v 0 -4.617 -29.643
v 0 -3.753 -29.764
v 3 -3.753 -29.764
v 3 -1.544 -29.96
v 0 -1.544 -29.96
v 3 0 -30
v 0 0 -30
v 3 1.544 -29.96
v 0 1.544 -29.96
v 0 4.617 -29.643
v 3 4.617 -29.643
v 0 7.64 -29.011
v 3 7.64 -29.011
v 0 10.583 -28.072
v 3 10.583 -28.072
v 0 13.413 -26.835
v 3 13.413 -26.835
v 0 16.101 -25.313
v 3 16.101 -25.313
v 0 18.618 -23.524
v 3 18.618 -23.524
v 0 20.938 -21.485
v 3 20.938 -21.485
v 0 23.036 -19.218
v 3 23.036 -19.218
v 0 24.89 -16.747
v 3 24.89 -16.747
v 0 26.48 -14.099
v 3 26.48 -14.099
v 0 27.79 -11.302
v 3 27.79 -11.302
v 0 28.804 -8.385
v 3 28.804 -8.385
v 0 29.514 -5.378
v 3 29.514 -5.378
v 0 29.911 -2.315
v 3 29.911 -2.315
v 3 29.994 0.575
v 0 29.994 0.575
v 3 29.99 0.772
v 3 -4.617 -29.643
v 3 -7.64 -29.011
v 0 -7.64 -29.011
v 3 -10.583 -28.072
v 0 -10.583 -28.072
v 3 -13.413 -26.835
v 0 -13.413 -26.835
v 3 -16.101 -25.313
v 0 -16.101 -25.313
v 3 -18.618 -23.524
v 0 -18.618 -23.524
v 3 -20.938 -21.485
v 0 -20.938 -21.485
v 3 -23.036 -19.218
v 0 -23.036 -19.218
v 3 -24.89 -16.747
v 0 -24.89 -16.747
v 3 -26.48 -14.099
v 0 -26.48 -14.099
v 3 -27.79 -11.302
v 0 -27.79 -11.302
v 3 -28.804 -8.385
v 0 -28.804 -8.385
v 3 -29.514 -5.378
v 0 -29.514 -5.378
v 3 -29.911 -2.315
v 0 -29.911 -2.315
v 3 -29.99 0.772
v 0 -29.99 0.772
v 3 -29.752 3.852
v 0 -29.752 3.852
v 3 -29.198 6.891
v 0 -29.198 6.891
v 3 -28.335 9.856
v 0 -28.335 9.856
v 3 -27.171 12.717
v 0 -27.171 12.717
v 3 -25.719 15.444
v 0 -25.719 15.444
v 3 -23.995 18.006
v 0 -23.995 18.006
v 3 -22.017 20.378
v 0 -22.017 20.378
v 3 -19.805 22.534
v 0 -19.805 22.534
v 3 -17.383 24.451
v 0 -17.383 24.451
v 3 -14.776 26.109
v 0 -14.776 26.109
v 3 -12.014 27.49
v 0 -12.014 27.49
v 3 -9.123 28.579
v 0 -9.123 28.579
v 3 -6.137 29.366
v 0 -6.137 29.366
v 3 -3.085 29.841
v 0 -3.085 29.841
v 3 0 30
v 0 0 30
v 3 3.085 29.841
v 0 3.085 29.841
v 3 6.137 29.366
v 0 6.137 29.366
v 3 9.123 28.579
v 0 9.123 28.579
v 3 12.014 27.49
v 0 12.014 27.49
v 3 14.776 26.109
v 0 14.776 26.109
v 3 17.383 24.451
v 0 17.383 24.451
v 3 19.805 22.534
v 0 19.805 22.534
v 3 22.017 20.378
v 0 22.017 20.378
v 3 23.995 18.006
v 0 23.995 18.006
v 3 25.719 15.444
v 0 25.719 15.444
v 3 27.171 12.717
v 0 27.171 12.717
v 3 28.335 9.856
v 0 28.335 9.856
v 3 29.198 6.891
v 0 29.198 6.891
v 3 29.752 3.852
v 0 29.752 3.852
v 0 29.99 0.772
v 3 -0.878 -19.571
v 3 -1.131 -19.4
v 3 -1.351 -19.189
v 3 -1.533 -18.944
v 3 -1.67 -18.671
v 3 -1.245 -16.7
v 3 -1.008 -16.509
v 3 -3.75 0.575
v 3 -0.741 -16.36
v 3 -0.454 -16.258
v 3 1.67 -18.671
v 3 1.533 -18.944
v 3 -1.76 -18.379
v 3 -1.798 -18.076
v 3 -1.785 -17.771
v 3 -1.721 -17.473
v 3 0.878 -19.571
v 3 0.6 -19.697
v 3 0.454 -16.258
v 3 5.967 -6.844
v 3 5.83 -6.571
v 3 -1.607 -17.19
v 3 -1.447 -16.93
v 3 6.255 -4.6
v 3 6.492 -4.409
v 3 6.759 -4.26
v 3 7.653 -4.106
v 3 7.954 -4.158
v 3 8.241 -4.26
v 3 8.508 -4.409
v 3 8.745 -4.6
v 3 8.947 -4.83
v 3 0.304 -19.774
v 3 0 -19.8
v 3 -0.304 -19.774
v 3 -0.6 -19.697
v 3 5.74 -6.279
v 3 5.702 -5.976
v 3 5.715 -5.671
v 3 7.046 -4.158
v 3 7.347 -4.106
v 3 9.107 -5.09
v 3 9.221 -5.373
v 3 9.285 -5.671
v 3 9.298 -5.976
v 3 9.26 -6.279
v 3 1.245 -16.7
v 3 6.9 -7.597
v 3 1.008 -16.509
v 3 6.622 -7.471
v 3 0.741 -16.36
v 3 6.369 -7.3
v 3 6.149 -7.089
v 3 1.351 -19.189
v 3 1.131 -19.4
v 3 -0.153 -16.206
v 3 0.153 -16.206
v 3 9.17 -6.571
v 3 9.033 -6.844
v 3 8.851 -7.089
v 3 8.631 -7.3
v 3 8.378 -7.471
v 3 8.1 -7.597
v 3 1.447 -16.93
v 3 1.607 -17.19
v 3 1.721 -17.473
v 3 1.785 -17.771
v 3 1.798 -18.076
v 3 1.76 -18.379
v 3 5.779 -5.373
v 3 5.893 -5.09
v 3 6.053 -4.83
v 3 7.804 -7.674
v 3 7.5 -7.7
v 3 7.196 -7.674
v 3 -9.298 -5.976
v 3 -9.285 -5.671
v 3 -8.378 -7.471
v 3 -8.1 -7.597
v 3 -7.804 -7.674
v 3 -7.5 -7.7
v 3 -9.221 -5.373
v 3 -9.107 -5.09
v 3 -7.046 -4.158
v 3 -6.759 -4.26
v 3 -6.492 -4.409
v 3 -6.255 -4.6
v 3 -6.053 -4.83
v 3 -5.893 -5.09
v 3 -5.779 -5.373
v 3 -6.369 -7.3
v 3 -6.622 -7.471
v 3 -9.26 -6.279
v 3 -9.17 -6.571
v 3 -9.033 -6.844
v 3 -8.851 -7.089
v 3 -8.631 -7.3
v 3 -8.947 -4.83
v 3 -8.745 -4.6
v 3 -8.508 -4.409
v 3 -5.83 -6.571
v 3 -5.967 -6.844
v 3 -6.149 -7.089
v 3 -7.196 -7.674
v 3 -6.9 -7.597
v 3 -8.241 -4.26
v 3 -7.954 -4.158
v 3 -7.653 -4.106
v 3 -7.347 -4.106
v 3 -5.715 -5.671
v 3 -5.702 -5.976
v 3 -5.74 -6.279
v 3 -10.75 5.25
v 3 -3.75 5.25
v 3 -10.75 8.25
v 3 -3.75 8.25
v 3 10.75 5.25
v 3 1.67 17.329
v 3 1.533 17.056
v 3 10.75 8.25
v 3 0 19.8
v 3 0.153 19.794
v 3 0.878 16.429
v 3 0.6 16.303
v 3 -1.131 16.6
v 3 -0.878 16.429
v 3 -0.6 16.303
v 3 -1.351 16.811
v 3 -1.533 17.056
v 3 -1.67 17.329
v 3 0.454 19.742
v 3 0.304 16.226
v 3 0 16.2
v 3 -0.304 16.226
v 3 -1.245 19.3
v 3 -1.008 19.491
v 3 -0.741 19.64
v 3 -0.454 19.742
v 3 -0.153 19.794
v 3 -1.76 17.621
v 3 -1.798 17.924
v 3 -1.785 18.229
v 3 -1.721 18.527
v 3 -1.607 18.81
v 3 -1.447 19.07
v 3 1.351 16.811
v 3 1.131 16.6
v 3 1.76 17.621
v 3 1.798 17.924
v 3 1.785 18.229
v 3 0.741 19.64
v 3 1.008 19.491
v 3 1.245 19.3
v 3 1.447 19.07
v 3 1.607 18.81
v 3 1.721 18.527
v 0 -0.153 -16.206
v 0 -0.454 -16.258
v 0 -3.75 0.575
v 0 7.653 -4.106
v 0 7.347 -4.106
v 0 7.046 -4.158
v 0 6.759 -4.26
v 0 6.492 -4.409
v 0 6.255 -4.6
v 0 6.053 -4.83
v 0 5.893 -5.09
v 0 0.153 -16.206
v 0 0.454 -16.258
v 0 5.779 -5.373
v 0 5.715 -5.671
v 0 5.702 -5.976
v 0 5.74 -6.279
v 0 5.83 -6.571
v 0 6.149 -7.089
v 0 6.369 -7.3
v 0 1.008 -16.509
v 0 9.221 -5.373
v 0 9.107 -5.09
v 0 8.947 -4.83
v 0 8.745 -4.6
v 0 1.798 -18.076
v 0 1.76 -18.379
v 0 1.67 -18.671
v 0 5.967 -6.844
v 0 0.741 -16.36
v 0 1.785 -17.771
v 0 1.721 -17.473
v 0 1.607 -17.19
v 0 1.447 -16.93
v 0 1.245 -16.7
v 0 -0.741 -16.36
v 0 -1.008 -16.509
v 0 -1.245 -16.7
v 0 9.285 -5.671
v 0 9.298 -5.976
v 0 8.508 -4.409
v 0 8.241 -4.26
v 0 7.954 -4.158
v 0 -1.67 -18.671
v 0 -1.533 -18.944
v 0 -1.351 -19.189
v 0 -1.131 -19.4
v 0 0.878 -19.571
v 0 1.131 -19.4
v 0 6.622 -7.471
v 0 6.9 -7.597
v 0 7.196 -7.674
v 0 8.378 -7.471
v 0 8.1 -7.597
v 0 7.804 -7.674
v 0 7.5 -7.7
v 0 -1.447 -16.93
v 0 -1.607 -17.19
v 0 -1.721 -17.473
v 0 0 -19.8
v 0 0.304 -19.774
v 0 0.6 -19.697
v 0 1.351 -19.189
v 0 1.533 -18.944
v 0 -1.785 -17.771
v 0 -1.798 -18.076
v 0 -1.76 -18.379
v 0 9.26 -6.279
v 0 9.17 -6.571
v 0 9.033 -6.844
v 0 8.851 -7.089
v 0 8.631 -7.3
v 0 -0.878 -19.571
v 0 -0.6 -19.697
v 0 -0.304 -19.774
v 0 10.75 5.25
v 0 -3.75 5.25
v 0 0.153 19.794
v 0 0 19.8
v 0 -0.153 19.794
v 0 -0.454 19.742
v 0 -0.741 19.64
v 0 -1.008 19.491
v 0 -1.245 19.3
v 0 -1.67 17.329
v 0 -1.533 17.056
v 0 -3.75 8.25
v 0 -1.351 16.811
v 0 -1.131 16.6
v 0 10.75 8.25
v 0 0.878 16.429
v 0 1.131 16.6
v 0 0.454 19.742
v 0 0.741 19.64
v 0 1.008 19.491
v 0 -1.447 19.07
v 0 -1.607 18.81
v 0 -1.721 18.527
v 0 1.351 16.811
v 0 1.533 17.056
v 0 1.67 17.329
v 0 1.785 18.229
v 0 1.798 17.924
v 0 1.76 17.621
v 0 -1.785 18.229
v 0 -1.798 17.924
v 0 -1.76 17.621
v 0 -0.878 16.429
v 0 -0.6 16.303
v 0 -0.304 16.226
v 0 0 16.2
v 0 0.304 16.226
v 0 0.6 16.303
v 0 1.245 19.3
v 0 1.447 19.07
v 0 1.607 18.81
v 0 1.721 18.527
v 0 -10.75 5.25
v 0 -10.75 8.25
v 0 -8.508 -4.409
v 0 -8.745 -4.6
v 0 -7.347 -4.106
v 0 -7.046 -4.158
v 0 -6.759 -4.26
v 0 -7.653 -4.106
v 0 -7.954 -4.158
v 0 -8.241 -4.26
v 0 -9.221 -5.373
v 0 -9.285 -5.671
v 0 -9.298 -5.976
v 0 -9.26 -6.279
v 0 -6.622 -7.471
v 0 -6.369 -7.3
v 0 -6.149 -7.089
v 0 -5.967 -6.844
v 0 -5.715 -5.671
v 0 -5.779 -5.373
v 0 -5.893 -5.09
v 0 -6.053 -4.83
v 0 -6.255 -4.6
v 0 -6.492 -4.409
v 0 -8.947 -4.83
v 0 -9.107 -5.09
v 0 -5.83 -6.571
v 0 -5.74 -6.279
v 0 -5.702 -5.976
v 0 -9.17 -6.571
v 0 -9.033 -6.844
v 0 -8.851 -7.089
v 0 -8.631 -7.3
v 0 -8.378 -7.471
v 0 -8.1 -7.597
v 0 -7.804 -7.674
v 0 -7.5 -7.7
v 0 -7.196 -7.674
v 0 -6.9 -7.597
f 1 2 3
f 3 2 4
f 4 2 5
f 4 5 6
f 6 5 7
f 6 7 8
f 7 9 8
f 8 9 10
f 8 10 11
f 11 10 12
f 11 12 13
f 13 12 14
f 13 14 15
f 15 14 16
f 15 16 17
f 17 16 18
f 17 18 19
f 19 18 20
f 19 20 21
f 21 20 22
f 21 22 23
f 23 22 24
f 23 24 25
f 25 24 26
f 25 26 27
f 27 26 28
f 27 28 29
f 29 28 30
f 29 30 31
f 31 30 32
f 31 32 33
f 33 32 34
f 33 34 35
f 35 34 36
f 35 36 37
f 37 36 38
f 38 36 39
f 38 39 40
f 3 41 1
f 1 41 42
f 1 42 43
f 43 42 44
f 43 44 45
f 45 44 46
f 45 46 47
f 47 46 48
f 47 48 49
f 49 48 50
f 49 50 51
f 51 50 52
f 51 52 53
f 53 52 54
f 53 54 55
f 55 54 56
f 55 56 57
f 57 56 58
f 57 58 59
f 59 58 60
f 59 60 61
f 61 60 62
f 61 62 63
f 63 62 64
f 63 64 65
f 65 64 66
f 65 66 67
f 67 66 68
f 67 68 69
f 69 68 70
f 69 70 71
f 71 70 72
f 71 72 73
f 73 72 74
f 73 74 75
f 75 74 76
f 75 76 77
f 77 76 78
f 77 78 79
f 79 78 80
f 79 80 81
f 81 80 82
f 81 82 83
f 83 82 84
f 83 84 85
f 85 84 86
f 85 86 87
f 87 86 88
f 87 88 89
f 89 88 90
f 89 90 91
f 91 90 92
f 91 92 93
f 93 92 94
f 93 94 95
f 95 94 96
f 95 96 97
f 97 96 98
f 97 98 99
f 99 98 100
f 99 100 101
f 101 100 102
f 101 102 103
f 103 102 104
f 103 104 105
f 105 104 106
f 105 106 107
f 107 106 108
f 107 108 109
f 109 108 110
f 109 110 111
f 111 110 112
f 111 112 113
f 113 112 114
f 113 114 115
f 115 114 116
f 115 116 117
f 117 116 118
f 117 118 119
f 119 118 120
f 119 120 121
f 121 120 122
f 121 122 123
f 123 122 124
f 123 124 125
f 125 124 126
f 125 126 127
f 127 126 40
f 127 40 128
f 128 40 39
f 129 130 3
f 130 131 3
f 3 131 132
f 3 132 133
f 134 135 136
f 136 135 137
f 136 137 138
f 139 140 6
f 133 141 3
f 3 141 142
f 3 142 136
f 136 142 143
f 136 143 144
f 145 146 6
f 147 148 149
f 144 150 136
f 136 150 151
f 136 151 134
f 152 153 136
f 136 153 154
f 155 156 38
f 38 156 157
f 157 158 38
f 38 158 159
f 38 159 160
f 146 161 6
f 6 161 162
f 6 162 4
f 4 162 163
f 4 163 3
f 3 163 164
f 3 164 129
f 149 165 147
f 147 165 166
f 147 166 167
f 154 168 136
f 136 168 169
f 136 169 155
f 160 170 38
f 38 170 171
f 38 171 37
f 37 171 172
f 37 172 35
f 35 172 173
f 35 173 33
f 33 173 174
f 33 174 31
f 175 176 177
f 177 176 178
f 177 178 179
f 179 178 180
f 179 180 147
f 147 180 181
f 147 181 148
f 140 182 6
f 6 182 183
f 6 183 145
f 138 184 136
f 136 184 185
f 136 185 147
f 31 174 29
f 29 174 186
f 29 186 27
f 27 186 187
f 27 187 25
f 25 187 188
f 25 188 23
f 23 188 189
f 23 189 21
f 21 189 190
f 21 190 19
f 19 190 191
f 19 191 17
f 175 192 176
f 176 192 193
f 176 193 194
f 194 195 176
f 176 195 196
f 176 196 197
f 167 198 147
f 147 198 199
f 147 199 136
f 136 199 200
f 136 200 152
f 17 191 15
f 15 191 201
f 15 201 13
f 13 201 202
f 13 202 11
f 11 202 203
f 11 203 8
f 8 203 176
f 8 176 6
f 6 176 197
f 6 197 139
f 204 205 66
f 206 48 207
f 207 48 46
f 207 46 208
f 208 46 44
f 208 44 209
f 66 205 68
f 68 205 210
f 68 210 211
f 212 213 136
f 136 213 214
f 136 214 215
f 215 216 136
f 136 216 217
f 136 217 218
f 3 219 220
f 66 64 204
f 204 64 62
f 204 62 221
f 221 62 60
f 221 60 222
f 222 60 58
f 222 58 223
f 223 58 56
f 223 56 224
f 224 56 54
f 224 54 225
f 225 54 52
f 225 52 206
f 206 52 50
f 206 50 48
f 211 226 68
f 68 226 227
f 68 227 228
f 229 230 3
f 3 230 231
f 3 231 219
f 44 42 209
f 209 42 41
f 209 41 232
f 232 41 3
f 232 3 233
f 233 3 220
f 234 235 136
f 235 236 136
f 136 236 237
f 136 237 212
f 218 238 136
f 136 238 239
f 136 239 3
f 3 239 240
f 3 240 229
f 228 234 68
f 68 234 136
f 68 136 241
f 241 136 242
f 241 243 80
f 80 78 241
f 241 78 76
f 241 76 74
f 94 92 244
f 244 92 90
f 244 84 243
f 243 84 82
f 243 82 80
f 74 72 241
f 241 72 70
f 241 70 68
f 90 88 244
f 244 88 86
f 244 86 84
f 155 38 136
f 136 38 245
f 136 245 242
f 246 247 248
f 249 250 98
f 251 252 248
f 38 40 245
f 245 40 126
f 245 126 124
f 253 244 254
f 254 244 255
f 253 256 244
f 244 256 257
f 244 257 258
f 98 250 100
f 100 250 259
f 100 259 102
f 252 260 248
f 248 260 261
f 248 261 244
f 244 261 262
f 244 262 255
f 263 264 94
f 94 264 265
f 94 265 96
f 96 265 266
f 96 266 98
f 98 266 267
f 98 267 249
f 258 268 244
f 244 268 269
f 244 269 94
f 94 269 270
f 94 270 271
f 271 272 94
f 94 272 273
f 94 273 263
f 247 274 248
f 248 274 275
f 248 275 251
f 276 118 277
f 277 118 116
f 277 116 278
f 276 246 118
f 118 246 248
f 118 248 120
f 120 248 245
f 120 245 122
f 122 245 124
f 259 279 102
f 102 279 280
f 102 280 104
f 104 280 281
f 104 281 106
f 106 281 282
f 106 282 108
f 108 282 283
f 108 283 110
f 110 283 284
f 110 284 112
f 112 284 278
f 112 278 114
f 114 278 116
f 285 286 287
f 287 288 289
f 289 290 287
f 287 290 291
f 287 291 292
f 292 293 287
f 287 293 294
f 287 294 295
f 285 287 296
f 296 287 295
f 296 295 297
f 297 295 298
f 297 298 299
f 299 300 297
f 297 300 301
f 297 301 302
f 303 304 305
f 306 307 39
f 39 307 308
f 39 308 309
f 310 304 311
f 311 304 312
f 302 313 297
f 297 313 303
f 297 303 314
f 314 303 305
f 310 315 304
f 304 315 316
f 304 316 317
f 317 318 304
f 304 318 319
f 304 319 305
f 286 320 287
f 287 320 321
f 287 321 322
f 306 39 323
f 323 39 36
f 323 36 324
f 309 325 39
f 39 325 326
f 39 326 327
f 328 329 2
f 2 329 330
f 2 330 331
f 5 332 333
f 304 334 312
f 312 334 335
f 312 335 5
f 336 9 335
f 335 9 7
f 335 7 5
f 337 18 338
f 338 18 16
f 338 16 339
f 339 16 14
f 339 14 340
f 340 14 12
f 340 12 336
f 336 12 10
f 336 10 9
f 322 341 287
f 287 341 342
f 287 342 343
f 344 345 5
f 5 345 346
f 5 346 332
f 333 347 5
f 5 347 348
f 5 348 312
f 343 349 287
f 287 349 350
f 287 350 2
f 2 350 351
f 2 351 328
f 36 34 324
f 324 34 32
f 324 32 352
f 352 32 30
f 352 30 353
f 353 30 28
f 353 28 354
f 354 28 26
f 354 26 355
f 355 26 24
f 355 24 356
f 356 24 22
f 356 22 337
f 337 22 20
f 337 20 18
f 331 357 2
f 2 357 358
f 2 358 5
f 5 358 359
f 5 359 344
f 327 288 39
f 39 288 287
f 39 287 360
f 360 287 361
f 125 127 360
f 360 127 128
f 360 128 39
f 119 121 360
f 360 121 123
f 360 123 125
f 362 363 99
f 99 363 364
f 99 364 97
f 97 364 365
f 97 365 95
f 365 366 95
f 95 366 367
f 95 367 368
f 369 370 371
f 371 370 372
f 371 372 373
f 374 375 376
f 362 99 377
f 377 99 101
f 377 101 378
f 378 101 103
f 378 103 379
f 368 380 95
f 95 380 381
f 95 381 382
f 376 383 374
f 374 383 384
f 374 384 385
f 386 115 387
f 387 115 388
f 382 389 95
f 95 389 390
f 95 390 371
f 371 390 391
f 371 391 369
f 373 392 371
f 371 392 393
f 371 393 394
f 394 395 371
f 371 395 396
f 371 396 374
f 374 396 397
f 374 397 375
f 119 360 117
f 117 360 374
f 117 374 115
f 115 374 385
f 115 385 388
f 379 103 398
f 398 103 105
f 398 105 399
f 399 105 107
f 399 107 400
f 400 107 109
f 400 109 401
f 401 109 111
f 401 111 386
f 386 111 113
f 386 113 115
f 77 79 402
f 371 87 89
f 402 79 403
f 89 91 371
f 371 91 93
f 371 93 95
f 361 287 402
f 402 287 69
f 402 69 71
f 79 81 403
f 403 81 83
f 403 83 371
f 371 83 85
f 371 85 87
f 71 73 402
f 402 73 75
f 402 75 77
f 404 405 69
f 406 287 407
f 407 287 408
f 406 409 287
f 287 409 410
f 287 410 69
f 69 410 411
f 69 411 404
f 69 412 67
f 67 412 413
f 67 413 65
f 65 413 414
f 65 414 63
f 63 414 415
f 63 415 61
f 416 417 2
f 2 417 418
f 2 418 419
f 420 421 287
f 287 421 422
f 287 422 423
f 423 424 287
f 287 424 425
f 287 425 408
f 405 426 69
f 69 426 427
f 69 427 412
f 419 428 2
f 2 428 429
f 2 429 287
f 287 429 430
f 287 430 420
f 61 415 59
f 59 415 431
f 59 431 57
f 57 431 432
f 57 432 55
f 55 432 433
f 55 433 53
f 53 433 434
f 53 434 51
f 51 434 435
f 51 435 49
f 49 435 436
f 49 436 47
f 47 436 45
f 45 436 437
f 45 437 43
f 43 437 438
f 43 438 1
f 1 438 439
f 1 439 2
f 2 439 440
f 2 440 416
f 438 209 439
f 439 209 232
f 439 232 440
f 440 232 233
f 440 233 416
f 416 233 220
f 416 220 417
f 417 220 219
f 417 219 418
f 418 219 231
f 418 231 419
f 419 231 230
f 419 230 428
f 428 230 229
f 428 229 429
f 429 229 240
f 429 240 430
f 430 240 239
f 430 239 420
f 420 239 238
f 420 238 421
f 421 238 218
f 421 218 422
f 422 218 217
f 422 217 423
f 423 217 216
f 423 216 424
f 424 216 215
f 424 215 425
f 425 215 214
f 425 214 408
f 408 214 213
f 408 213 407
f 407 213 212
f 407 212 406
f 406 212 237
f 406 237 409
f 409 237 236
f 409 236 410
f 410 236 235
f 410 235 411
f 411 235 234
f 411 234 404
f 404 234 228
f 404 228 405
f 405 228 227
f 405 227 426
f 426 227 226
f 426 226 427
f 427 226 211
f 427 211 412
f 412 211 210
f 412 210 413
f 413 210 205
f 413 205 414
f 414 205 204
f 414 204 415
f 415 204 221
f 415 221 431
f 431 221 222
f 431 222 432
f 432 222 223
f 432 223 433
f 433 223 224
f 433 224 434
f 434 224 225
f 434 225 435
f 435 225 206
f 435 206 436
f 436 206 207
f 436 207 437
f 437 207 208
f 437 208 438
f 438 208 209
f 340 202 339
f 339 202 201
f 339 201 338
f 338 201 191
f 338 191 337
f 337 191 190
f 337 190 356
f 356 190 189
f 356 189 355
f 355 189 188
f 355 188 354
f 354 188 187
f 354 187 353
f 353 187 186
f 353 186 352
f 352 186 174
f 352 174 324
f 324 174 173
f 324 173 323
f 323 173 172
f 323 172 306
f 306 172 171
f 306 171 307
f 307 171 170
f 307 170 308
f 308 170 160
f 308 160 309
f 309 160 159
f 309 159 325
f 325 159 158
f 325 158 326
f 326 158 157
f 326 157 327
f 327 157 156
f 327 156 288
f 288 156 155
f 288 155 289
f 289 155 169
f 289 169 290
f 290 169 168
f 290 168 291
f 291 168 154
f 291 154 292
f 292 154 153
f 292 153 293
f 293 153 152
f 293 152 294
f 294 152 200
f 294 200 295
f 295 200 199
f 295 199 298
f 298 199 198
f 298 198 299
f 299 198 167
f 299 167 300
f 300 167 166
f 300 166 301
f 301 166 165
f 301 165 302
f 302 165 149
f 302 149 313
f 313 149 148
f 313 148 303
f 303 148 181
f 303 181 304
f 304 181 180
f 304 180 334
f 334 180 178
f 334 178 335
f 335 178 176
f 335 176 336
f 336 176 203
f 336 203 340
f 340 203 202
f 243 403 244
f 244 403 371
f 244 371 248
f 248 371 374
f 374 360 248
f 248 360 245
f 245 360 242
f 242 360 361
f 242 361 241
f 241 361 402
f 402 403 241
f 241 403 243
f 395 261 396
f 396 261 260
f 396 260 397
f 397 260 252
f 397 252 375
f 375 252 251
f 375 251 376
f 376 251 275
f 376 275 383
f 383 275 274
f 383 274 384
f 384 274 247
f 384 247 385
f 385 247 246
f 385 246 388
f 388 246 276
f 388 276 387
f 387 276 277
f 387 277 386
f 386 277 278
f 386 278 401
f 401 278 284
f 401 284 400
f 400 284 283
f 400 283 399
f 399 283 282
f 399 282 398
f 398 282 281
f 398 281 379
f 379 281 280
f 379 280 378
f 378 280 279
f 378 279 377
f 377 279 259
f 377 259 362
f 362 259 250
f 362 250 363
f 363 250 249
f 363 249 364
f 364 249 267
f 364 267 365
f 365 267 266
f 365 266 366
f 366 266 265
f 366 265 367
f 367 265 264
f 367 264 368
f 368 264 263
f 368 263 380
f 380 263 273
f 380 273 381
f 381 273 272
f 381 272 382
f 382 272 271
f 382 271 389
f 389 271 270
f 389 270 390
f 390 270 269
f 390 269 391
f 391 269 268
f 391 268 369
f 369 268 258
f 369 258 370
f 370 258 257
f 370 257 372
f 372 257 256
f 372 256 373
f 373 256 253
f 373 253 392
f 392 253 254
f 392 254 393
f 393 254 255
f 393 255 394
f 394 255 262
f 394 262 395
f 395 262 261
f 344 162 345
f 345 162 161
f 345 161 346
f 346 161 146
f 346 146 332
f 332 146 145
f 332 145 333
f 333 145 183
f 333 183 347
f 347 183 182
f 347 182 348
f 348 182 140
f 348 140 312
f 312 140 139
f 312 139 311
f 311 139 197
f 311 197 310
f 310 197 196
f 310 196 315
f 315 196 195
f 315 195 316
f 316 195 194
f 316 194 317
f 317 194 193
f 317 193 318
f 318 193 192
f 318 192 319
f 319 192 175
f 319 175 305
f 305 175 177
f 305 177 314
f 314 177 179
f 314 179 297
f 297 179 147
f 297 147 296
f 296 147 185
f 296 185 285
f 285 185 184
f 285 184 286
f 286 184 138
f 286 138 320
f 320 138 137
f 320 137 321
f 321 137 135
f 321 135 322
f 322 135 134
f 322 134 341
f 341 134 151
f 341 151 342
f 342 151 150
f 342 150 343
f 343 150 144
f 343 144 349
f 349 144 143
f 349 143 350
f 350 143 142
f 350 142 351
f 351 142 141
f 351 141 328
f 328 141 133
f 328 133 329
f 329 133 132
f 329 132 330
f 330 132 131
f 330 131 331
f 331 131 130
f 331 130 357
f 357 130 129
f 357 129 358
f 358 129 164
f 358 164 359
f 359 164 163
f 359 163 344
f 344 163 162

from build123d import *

# Parameters (mm, degrees)
SKETCH1_R           = 30
BOSS_EXTRUDE1_DEPTH = 3
SKETCH2_R           = 1.8
SKETCH2_W           = 3
SKETCH2_H           = 21.5
CUT_EXTRUDE1_DEPTH  = 3


with BuildPart() as part:
    # Sketch1 → Boss-Extrude1 (new body)
    with BuildSketch(Plane(origin=(0, 0, 0), x_dir=(0, 0, -1), z_dir=(1, 0, 0))):
        Circle(SKETCH1_R)
    extrude(amount=BOSS_EXTRUDE1_DEPTH)

    # Sketch2 → Cut-Extrude1 (cut)
    with BuildSketch(Plane(origin=(3, 0, 0), x_dir=(0, 0, -1), z_dir=(1, 0, 0))):
        with Locations((18, 0)):
            Circle(SKETCH2_R)
        with Locations((-18, 0)):
            Circle(SKETCH2_R)
        with Locations((5.9, 7.5)):
            Circle(SKETCH2_R)
        with Locations((5.9, -7.5)):
            Circle(SKETCH2_R)
        with Locations((-6.75, 0)):
            Rectangle(SKETCH2_W, SKETCH2_H)
    extrude(amount=-CUT_EXTRUDE1_DEPTH, mode=Mode.SUBTRACT)


solid = part.part
